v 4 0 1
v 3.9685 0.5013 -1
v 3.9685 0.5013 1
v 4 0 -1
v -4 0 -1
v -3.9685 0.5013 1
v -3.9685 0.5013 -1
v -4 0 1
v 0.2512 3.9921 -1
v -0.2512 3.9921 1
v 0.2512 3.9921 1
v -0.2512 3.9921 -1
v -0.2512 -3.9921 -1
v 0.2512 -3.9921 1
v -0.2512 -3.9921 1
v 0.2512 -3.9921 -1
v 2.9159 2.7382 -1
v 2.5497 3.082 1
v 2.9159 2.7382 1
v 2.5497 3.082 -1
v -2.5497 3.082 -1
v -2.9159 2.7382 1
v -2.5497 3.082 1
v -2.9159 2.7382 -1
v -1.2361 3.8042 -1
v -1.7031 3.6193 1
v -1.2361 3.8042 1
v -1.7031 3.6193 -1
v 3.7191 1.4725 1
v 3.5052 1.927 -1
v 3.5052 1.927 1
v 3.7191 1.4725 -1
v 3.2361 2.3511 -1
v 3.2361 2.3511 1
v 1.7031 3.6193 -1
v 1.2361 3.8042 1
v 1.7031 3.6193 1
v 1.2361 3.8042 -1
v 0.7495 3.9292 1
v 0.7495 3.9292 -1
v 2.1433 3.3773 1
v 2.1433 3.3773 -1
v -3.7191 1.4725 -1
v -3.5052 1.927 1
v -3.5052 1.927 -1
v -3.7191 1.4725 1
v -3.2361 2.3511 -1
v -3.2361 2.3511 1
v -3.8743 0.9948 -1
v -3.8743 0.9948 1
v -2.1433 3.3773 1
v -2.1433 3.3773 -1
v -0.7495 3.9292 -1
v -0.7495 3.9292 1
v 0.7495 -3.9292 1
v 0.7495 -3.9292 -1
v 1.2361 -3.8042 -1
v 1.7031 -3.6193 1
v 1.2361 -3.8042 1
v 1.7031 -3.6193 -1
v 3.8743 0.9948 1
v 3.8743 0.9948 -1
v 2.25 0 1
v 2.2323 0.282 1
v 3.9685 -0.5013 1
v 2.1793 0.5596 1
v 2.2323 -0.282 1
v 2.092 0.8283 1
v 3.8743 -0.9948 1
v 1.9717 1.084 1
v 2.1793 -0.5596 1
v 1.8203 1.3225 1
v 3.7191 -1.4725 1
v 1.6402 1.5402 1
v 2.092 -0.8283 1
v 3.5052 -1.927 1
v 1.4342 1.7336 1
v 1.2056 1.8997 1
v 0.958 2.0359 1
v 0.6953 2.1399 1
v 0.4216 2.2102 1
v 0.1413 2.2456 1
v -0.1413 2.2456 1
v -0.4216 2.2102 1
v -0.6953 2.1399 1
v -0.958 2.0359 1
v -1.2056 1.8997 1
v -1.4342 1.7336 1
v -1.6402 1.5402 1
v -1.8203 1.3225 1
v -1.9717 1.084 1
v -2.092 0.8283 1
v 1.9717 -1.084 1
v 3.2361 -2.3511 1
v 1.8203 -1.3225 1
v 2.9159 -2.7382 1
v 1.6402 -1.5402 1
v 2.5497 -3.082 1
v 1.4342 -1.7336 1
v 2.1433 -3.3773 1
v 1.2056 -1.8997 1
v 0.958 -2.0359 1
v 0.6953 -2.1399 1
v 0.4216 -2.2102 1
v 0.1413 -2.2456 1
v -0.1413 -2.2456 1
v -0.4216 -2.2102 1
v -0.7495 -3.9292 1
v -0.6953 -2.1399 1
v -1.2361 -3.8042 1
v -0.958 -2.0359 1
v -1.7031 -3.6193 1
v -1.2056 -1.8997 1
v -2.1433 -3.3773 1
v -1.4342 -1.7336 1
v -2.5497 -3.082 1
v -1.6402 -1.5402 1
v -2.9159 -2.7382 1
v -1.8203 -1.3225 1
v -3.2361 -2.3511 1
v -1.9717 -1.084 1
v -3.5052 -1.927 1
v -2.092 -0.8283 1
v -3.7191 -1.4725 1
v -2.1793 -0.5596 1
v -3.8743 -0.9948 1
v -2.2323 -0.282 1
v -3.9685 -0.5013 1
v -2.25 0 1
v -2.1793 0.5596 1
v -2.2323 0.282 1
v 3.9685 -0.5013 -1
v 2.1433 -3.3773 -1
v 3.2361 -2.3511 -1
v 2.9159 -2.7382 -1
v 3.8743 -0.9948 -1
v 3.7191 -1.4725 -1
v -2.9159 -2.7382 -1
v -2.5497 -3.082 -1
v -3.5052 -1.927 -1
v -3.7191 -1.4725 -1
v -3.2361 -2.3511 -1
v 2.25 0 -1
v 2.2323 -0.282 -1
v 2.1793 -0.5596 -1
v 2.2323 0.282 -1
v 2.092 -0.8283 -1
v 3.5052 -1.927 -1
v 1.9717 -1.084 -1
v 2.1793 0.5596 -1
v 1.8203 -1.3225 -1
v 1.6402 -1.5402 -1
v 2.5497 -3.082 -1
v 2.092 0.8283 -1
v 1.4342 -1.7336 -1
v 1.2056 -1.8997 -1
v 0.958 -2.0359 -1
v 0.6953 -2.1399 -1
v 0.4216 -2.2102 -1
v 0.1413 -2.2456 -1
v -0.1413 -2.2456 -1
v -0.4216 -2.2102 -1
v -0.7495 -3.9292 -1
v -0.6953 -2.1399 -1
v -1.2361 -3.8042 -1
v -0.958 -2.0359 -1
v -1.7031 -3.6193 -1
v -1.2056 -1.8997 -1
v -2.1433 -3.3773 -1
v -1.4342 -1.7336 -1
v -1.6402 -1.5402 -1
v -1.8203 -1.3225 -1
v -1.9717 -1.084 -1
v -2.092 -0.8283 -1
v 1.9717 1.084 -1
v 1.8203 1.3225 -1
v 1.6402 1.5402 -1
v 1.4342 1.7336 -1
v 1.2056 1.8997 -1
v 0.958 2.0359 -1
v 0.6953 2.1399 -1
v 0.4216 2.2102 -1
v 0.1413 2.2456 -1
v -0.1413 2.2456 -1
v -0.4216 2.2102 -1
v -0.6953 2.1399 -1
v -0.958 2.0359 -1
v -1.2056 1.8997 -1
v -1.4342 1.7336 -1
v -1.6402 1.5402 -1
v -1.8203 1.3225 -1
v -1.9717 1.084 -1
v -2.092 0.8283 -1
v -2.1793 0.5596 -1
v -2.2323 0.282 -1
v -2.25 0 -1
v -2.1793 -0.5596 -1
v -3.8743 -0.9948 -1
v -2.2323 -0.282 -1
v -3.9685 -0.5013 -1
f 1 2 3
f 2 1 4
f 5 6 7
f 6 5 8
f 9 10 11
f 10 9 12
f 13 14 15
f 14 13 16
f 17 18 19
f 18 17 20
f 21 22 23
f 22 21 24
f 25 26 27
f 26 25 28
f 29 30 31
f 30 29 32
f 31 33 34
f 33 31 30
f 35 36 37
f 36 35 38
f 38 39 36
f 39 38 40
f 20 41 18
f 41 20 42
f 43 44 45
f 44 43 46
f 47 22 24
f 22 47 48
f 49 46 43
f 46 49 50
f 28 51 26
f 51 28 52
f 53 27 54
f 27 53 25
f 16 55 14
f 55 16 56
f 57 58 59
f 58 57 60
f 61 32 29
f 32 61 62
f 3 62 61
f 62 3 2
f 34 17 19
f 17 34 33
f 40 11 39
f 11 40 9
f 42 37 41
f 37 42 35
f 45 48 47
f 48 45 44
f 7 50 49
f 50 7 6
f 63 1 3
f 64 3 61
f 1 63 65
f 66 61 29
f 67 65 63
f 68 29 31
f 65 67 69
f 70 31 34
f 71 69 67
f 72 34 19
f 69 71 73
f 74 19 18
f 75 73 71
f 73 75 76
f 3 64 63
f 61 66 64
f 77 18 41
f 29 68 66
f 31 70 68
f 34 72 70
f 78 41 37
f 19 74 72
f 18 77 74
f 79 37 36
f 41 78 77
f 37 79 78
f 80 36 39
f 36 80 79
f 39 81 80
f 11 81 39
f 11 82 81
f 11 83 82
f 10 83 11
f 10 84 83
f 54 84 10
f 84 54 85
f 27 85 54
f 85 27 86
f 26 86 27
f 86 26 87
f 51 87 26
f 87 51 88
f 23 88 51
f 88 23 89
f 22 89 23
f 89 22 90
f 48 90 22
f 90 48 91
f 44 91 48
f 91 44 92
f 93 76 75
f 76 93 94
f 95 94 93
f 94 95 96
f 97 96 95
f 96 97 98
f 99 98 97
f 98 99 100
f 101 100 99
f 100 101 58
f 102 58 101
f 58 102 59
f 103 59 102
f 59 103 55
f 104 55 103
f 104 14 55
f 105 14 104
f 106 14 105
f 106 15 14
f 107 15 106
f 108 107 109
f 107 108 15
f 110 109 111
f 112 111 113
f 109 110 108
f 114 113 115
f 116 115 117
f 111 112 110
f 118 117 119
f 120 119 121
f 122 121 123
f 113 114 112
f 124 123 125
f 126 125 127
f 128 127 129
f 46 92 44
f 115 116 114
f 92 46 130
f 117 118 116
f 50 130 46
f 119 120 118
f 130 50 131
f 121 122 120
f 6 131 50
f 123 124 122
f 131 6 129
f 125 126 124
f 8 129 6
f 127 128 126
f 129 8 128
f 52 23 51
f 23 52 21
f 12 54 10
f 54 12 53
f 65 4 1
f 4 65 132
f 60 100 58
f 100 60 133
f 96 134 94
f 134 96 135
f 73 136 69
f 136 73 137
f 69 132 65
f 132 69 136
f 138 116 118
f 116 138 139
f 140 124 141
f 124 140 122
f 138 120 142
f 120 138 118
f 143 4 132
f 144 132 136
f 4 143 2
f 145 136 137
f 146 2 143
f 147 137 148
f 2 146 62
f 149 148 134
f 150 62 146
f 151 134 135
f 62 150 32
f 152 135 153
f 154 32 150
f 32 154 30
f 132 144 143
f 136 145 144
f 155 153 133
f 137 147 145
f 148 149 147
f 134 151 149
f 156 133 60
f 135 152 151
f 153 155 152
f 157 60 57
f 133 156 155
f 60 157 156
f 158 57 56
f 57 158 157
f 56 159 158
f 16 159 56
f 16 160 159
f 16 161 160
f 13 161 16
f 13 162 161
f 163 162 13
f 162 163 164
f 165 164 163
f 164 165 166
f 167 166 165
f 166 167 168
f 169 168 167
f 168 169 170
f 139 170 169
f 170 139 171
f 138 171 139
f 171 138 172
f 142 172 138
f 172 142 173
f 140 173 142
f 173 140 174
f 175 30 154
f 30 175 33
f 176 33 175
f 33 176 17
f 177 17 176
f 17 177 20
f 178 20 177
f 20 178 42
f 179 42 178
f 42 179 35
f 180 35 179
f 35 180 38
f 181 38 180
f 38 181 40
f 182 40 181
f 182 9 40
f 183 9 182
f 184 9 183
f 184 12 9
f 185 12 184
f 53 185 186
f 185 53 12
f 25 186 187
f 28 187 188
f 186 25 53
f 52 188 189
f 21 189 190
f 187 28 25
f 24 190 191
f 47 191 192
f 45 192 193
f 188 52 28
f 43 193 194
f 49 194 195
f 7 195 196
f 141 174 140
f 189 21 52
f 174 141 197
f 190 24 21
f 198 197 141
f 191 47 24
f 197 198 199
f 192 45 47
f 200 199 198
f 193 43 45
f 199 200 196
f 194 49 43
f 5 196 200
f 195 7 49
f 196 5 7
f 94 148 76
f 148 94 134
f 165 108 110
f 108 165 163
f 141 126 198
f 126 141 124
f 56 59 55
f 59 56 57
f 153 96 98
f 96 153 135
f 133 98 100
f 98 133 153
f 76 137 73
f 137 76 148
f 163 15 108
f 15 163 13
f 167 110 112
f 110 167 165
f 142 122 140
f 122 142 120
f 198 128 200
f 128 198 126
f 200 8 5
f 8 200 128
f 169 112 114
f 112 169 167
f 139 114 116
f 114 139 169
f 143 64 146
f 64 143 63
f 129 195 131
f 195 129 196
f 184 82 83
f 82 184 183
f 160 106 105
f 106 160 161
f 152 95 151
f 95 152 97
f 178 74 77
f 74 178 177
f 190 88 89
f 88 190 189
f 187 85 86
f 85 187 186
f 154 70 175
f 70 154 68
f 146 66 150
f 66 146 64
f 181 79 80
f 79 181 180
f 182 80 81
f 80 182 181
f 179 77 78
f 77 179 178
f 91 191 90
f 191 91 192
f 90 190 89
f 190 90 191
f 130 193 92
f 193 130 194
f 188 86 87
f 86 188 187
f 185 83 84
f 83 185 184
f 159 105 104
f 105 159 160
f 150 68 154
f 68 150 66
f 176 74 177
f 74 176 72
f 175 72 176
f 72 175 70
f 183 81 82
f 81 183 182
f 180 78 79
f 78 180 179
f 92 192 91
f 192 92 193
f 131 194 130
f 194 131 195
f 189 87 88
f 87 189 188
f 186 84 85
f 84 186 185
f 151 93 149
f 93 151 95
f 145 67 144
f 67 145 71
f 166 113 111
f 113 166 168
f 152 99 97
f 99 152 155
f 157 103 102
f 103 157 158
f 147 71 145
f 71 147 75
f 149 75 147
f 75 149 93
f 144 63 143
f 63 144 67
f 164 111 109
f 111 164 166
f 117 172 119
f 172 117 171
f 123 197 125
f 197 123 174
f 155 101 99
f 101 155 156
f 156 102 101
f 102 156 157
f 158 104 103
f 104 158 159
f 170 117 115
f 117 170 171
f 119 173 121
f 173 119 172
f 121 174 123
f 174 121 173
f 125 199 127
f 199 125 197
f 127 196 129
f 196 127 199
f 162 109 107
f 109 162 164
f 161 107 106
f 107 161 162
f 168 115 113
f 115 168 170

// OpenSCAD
$fn = 50;


difference() {
	union() {
		translate(v = [0, 0, -1.0000000000]) {
			cylinder(h = 2, r = 4.0000000000);
		}
	}
	union() {
		translate(v = [0, 0, -100.0000000000]) {
			cylinder(h = 200, r = 2.2500000000);
		}
	}
}
